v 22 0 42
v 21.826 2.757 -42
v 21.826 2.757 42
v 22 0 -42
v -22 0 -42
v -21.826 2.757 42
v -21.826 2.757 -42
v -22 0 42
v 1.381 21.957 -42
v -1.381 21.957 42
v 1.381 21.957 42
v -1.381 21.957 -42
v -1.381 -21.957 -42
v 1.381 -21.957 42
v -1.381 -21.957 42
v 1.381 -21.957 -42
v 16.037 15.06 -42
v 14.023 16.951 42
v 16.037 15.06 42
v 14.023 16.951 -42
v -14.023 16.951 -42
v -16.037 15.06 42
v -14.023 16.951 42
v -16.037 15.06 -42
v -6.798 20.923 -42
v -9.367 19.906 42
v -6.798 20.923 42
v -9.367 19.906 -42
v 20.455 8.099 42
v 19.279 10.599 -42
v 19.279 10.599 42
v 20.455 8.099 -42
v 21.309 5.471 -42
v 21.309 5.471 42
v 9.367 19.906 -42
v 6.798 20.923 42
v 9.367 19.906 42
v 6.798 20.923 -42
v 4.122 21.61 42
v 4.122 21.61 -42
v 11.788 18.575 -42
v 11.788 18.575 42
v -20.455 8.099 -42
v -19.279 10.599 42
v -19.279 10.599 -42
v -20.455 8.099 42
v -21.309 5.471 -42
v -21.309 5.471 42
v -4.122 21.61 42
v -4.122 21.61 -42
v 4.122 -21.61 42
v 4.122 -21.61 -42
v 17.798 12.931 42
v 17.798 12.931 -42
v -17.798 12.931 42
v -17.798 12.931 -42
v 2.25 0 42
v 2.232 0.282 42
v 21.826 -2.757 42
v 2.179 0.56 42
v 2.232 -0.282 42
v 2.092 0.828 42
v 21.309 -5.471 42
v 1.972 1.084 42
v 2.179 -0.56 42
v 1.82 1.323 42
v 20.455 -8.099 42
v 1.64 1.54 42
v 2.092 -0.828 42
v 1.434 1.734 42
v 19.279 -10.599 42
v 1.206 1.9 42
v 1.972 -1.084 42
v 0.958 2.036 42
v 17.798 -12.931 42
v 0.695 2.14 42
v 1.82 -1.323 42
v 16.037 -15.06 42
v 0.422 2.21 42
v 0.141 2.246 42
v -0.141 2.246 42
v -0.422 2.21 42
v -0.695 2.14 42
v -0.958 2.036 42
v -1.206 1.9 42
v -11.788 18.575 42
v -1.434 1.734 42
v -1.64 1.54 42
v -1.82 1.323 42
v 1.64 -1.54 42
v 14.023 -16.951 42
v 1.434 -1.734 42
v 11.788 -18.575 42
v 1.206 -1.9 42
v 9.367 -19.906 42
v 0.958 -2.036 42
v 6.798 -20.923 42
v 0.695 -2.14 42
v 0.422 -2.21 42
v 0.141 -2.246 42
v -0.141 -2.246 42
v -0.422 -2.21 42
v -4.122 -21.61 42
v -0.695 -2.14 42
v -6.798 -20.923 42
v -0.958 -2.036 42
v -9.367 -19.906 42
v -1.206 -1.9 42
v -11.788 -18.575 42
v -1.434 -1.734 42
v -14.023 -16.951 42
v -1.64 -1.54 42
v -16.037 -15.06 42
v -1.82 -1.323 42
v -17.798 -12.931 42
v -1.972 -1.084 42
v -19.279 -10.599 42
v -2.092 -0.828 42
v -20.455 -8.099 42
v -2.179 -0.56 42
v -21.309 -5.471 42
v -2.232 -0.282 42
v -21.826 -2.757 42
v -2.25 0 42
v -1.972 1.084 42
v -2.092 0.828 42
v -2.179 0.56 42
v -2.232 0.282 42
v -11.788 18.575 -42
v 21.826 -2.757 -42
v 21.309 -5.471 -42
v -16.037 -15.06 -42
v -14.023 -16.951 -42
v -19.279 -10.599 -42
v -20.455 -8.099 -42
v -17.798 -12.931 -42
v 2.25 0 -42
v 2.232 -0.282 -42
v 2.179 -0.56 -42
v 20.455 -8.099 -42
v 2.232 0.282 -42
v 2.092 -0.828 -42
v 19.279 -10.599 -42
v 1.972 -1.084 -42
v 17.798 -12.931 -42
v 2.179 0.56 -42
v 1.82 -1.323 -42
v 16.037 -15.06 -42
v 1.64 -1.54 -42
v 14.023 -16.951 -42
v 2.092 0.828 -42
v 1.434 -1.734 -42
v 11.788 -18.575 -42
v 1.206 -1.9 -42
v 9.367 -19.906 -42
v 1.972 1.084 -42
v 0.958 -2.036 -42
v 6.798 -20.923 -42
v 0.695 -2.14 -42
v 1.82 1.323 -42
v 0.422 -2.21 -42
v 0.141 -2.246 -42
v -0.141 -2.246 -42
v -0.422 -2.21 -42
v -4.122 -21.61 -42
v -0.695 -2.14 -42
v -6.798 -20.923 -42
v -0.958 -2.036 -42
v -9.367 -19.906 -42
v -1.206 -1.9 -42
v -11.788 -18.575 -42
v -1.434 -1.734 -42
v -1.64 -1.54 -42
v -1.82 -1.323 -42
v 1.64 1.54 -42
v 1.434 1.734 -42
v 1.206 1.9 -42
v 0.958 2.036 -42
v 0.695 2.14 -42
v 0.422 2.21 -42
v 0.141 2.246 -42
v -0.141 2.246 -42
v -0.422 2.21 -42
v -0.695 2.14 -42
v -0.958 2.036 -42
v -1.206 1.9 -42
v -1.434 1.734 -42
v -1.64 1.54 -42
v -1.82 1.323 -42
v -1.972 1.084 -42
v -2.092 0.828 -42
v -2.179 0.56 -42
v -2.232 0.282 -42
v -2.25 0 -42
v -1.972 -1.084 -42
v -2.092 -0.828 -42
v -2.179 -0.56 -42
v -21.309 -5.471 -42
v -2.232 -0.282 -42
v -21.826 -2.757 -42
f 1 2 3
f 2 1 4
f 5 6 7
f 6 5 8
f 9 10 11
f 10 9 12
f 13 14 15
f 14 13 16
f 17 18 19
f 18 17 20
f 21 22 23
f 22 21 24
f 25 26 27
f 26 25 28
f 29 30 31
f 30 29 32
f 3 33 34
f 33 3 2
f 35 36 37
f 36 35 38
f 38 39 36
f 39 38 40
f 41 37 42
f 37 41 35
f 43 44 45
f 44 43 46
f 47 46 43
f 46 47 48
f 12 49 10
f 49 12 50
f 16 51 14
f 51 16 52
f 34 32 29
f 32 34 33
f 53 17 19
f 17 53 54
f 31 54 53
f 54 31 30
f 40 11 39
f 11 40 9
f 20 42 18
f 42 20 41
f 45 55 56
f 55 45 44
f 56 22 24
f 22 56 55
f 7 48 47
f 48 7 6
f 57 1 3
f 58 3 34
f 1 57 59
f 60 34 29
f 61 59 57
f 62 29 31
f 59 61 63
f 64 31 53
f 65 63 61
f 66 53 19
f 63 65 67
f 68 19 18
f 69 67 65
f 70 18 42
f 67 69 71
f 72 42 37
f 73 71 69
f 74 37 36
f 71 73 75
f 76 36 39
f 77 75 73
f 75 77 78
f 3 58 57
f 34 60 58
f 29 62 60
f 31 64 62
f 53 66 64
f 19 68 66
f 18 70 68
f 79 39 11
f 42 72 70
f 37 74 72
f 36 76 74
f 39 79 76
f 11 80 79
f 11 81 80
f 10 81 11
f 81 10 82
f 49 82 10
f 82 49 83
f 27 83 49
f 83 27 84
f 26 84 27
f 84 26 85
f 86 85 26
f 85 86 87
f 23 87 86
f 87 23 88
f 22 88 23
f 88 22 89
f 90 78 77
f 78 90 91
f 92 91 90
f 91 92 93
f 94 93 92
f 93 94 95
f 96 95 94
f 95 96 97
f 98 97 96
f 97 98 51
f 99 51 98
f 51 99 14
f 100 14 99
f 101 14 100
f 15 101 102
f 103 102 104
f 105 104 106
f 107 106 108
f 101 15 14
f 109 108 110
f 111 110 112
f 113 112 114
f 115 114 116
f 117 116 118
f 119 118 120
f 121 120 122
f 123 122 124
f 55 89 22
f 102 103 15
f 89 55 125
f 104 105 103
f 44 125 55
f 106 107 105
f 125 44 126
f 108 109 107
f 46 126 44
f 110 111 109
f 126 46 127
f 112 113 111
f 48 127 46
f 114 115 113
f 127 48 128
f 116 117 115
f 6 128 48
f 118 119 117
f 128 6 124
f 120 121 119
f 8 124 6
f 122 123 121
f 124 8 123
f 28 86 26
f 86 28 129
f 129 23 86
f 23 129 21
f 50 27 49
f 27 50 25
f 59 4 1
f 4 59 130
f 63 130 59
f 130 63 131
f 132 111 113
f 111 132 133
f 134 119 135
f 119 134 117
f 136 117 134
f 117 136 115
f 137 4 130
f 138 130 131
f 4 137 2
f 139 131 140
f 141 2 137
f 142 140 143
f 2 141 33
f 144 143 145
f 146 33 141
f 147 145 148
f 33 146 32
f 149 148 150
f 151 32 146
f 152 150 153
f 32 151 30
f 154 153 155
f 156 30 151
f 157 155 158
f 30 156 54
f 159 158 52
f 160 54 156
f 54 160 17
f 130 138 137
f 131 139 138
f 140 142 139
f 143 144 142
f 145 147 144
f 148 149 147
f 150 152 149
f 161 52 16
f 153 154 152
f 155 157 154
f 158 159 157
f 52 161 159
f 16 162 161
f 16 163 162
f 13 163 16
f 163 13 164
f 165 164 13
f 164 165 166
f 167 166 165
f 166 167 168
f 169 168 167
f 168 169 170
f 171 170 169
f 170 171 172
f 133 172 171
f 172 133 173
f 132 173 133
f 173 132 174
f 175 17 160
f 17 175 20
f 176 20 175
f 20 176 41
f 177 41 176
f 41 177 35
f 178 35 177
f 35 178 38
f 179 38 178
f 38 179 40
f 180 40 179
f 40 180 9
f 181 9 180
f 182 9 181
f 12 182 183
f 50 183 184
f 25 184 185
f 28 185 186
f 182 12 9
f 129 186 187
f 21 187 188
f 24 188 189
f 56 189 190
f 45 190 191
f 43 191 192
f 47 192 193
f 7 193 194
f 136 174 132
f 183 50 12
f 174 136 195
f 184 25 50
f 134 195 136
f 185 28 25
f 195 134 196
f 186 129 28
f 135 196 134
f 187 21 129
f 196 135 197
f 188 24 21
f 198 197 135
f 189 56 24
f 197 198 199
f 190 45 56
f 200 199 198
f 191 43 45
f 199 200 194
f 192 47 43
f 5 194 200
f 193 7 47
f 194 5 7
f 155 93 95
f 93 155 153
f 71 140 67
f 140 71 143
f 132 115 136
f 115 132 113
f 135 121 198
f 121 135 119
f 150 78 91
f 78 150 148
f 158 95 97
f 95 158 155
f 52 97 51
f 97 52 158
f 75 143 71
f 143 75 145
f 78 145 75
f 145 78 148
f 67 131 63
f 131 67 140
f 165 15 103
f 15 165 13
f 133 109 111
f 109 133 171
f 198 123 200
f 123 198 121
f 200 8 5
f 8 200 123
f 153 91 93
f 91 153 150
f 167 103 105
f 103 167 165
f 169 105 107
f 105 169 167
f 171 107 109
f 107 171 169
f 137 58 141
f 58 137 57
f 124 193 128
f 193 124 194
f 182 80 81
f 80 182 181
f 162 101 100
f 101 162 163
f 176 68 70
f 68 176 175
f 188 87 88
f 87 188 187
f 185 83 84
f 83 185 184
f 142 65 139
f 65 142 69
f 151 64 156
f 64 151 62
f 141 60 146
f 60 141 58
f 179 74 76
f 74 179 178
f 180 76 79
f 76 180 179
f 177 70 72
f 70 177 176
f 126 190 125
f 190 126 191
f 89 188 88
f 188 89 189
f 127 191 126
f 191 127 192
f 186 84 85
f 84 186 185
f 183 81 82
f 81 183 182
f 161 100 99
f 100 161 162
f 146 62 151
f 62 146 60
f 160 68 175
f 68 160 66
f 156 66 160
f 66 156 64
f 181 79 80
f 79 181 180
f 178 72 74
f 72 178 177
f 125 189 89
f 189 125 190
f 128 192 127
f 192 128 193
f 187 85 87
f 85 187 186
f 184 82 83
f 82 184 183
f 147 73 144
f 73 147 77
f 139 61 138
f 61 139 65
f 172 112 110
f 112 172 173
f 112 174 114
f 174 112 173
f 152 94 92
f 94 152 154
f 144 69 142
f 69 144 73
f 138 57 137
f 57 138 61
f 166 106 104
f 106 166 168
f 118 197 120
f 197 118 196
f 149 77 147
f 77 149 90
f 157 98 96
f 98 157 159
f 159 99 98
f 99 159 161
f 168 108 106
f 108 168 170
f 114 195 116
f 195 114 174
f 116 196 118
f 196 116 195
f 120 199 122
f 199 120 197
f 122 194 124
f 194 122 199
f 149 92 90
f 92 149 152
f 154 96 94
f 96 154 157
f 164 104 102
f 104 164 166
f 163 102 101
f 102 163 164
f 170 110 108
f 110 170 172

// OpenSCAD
$fn = 50;


difference() {
	union() {
		translate(v = [0, 0, -42.0000000000]) {
			cylinder(h = 84, r = 22.0000000000);
		}
	}
	union() {
		translate(v = [0, 0, -100.0000000000]) {
			cylinder(h = 200, r = 2.2500000000);
		}
	}
}
